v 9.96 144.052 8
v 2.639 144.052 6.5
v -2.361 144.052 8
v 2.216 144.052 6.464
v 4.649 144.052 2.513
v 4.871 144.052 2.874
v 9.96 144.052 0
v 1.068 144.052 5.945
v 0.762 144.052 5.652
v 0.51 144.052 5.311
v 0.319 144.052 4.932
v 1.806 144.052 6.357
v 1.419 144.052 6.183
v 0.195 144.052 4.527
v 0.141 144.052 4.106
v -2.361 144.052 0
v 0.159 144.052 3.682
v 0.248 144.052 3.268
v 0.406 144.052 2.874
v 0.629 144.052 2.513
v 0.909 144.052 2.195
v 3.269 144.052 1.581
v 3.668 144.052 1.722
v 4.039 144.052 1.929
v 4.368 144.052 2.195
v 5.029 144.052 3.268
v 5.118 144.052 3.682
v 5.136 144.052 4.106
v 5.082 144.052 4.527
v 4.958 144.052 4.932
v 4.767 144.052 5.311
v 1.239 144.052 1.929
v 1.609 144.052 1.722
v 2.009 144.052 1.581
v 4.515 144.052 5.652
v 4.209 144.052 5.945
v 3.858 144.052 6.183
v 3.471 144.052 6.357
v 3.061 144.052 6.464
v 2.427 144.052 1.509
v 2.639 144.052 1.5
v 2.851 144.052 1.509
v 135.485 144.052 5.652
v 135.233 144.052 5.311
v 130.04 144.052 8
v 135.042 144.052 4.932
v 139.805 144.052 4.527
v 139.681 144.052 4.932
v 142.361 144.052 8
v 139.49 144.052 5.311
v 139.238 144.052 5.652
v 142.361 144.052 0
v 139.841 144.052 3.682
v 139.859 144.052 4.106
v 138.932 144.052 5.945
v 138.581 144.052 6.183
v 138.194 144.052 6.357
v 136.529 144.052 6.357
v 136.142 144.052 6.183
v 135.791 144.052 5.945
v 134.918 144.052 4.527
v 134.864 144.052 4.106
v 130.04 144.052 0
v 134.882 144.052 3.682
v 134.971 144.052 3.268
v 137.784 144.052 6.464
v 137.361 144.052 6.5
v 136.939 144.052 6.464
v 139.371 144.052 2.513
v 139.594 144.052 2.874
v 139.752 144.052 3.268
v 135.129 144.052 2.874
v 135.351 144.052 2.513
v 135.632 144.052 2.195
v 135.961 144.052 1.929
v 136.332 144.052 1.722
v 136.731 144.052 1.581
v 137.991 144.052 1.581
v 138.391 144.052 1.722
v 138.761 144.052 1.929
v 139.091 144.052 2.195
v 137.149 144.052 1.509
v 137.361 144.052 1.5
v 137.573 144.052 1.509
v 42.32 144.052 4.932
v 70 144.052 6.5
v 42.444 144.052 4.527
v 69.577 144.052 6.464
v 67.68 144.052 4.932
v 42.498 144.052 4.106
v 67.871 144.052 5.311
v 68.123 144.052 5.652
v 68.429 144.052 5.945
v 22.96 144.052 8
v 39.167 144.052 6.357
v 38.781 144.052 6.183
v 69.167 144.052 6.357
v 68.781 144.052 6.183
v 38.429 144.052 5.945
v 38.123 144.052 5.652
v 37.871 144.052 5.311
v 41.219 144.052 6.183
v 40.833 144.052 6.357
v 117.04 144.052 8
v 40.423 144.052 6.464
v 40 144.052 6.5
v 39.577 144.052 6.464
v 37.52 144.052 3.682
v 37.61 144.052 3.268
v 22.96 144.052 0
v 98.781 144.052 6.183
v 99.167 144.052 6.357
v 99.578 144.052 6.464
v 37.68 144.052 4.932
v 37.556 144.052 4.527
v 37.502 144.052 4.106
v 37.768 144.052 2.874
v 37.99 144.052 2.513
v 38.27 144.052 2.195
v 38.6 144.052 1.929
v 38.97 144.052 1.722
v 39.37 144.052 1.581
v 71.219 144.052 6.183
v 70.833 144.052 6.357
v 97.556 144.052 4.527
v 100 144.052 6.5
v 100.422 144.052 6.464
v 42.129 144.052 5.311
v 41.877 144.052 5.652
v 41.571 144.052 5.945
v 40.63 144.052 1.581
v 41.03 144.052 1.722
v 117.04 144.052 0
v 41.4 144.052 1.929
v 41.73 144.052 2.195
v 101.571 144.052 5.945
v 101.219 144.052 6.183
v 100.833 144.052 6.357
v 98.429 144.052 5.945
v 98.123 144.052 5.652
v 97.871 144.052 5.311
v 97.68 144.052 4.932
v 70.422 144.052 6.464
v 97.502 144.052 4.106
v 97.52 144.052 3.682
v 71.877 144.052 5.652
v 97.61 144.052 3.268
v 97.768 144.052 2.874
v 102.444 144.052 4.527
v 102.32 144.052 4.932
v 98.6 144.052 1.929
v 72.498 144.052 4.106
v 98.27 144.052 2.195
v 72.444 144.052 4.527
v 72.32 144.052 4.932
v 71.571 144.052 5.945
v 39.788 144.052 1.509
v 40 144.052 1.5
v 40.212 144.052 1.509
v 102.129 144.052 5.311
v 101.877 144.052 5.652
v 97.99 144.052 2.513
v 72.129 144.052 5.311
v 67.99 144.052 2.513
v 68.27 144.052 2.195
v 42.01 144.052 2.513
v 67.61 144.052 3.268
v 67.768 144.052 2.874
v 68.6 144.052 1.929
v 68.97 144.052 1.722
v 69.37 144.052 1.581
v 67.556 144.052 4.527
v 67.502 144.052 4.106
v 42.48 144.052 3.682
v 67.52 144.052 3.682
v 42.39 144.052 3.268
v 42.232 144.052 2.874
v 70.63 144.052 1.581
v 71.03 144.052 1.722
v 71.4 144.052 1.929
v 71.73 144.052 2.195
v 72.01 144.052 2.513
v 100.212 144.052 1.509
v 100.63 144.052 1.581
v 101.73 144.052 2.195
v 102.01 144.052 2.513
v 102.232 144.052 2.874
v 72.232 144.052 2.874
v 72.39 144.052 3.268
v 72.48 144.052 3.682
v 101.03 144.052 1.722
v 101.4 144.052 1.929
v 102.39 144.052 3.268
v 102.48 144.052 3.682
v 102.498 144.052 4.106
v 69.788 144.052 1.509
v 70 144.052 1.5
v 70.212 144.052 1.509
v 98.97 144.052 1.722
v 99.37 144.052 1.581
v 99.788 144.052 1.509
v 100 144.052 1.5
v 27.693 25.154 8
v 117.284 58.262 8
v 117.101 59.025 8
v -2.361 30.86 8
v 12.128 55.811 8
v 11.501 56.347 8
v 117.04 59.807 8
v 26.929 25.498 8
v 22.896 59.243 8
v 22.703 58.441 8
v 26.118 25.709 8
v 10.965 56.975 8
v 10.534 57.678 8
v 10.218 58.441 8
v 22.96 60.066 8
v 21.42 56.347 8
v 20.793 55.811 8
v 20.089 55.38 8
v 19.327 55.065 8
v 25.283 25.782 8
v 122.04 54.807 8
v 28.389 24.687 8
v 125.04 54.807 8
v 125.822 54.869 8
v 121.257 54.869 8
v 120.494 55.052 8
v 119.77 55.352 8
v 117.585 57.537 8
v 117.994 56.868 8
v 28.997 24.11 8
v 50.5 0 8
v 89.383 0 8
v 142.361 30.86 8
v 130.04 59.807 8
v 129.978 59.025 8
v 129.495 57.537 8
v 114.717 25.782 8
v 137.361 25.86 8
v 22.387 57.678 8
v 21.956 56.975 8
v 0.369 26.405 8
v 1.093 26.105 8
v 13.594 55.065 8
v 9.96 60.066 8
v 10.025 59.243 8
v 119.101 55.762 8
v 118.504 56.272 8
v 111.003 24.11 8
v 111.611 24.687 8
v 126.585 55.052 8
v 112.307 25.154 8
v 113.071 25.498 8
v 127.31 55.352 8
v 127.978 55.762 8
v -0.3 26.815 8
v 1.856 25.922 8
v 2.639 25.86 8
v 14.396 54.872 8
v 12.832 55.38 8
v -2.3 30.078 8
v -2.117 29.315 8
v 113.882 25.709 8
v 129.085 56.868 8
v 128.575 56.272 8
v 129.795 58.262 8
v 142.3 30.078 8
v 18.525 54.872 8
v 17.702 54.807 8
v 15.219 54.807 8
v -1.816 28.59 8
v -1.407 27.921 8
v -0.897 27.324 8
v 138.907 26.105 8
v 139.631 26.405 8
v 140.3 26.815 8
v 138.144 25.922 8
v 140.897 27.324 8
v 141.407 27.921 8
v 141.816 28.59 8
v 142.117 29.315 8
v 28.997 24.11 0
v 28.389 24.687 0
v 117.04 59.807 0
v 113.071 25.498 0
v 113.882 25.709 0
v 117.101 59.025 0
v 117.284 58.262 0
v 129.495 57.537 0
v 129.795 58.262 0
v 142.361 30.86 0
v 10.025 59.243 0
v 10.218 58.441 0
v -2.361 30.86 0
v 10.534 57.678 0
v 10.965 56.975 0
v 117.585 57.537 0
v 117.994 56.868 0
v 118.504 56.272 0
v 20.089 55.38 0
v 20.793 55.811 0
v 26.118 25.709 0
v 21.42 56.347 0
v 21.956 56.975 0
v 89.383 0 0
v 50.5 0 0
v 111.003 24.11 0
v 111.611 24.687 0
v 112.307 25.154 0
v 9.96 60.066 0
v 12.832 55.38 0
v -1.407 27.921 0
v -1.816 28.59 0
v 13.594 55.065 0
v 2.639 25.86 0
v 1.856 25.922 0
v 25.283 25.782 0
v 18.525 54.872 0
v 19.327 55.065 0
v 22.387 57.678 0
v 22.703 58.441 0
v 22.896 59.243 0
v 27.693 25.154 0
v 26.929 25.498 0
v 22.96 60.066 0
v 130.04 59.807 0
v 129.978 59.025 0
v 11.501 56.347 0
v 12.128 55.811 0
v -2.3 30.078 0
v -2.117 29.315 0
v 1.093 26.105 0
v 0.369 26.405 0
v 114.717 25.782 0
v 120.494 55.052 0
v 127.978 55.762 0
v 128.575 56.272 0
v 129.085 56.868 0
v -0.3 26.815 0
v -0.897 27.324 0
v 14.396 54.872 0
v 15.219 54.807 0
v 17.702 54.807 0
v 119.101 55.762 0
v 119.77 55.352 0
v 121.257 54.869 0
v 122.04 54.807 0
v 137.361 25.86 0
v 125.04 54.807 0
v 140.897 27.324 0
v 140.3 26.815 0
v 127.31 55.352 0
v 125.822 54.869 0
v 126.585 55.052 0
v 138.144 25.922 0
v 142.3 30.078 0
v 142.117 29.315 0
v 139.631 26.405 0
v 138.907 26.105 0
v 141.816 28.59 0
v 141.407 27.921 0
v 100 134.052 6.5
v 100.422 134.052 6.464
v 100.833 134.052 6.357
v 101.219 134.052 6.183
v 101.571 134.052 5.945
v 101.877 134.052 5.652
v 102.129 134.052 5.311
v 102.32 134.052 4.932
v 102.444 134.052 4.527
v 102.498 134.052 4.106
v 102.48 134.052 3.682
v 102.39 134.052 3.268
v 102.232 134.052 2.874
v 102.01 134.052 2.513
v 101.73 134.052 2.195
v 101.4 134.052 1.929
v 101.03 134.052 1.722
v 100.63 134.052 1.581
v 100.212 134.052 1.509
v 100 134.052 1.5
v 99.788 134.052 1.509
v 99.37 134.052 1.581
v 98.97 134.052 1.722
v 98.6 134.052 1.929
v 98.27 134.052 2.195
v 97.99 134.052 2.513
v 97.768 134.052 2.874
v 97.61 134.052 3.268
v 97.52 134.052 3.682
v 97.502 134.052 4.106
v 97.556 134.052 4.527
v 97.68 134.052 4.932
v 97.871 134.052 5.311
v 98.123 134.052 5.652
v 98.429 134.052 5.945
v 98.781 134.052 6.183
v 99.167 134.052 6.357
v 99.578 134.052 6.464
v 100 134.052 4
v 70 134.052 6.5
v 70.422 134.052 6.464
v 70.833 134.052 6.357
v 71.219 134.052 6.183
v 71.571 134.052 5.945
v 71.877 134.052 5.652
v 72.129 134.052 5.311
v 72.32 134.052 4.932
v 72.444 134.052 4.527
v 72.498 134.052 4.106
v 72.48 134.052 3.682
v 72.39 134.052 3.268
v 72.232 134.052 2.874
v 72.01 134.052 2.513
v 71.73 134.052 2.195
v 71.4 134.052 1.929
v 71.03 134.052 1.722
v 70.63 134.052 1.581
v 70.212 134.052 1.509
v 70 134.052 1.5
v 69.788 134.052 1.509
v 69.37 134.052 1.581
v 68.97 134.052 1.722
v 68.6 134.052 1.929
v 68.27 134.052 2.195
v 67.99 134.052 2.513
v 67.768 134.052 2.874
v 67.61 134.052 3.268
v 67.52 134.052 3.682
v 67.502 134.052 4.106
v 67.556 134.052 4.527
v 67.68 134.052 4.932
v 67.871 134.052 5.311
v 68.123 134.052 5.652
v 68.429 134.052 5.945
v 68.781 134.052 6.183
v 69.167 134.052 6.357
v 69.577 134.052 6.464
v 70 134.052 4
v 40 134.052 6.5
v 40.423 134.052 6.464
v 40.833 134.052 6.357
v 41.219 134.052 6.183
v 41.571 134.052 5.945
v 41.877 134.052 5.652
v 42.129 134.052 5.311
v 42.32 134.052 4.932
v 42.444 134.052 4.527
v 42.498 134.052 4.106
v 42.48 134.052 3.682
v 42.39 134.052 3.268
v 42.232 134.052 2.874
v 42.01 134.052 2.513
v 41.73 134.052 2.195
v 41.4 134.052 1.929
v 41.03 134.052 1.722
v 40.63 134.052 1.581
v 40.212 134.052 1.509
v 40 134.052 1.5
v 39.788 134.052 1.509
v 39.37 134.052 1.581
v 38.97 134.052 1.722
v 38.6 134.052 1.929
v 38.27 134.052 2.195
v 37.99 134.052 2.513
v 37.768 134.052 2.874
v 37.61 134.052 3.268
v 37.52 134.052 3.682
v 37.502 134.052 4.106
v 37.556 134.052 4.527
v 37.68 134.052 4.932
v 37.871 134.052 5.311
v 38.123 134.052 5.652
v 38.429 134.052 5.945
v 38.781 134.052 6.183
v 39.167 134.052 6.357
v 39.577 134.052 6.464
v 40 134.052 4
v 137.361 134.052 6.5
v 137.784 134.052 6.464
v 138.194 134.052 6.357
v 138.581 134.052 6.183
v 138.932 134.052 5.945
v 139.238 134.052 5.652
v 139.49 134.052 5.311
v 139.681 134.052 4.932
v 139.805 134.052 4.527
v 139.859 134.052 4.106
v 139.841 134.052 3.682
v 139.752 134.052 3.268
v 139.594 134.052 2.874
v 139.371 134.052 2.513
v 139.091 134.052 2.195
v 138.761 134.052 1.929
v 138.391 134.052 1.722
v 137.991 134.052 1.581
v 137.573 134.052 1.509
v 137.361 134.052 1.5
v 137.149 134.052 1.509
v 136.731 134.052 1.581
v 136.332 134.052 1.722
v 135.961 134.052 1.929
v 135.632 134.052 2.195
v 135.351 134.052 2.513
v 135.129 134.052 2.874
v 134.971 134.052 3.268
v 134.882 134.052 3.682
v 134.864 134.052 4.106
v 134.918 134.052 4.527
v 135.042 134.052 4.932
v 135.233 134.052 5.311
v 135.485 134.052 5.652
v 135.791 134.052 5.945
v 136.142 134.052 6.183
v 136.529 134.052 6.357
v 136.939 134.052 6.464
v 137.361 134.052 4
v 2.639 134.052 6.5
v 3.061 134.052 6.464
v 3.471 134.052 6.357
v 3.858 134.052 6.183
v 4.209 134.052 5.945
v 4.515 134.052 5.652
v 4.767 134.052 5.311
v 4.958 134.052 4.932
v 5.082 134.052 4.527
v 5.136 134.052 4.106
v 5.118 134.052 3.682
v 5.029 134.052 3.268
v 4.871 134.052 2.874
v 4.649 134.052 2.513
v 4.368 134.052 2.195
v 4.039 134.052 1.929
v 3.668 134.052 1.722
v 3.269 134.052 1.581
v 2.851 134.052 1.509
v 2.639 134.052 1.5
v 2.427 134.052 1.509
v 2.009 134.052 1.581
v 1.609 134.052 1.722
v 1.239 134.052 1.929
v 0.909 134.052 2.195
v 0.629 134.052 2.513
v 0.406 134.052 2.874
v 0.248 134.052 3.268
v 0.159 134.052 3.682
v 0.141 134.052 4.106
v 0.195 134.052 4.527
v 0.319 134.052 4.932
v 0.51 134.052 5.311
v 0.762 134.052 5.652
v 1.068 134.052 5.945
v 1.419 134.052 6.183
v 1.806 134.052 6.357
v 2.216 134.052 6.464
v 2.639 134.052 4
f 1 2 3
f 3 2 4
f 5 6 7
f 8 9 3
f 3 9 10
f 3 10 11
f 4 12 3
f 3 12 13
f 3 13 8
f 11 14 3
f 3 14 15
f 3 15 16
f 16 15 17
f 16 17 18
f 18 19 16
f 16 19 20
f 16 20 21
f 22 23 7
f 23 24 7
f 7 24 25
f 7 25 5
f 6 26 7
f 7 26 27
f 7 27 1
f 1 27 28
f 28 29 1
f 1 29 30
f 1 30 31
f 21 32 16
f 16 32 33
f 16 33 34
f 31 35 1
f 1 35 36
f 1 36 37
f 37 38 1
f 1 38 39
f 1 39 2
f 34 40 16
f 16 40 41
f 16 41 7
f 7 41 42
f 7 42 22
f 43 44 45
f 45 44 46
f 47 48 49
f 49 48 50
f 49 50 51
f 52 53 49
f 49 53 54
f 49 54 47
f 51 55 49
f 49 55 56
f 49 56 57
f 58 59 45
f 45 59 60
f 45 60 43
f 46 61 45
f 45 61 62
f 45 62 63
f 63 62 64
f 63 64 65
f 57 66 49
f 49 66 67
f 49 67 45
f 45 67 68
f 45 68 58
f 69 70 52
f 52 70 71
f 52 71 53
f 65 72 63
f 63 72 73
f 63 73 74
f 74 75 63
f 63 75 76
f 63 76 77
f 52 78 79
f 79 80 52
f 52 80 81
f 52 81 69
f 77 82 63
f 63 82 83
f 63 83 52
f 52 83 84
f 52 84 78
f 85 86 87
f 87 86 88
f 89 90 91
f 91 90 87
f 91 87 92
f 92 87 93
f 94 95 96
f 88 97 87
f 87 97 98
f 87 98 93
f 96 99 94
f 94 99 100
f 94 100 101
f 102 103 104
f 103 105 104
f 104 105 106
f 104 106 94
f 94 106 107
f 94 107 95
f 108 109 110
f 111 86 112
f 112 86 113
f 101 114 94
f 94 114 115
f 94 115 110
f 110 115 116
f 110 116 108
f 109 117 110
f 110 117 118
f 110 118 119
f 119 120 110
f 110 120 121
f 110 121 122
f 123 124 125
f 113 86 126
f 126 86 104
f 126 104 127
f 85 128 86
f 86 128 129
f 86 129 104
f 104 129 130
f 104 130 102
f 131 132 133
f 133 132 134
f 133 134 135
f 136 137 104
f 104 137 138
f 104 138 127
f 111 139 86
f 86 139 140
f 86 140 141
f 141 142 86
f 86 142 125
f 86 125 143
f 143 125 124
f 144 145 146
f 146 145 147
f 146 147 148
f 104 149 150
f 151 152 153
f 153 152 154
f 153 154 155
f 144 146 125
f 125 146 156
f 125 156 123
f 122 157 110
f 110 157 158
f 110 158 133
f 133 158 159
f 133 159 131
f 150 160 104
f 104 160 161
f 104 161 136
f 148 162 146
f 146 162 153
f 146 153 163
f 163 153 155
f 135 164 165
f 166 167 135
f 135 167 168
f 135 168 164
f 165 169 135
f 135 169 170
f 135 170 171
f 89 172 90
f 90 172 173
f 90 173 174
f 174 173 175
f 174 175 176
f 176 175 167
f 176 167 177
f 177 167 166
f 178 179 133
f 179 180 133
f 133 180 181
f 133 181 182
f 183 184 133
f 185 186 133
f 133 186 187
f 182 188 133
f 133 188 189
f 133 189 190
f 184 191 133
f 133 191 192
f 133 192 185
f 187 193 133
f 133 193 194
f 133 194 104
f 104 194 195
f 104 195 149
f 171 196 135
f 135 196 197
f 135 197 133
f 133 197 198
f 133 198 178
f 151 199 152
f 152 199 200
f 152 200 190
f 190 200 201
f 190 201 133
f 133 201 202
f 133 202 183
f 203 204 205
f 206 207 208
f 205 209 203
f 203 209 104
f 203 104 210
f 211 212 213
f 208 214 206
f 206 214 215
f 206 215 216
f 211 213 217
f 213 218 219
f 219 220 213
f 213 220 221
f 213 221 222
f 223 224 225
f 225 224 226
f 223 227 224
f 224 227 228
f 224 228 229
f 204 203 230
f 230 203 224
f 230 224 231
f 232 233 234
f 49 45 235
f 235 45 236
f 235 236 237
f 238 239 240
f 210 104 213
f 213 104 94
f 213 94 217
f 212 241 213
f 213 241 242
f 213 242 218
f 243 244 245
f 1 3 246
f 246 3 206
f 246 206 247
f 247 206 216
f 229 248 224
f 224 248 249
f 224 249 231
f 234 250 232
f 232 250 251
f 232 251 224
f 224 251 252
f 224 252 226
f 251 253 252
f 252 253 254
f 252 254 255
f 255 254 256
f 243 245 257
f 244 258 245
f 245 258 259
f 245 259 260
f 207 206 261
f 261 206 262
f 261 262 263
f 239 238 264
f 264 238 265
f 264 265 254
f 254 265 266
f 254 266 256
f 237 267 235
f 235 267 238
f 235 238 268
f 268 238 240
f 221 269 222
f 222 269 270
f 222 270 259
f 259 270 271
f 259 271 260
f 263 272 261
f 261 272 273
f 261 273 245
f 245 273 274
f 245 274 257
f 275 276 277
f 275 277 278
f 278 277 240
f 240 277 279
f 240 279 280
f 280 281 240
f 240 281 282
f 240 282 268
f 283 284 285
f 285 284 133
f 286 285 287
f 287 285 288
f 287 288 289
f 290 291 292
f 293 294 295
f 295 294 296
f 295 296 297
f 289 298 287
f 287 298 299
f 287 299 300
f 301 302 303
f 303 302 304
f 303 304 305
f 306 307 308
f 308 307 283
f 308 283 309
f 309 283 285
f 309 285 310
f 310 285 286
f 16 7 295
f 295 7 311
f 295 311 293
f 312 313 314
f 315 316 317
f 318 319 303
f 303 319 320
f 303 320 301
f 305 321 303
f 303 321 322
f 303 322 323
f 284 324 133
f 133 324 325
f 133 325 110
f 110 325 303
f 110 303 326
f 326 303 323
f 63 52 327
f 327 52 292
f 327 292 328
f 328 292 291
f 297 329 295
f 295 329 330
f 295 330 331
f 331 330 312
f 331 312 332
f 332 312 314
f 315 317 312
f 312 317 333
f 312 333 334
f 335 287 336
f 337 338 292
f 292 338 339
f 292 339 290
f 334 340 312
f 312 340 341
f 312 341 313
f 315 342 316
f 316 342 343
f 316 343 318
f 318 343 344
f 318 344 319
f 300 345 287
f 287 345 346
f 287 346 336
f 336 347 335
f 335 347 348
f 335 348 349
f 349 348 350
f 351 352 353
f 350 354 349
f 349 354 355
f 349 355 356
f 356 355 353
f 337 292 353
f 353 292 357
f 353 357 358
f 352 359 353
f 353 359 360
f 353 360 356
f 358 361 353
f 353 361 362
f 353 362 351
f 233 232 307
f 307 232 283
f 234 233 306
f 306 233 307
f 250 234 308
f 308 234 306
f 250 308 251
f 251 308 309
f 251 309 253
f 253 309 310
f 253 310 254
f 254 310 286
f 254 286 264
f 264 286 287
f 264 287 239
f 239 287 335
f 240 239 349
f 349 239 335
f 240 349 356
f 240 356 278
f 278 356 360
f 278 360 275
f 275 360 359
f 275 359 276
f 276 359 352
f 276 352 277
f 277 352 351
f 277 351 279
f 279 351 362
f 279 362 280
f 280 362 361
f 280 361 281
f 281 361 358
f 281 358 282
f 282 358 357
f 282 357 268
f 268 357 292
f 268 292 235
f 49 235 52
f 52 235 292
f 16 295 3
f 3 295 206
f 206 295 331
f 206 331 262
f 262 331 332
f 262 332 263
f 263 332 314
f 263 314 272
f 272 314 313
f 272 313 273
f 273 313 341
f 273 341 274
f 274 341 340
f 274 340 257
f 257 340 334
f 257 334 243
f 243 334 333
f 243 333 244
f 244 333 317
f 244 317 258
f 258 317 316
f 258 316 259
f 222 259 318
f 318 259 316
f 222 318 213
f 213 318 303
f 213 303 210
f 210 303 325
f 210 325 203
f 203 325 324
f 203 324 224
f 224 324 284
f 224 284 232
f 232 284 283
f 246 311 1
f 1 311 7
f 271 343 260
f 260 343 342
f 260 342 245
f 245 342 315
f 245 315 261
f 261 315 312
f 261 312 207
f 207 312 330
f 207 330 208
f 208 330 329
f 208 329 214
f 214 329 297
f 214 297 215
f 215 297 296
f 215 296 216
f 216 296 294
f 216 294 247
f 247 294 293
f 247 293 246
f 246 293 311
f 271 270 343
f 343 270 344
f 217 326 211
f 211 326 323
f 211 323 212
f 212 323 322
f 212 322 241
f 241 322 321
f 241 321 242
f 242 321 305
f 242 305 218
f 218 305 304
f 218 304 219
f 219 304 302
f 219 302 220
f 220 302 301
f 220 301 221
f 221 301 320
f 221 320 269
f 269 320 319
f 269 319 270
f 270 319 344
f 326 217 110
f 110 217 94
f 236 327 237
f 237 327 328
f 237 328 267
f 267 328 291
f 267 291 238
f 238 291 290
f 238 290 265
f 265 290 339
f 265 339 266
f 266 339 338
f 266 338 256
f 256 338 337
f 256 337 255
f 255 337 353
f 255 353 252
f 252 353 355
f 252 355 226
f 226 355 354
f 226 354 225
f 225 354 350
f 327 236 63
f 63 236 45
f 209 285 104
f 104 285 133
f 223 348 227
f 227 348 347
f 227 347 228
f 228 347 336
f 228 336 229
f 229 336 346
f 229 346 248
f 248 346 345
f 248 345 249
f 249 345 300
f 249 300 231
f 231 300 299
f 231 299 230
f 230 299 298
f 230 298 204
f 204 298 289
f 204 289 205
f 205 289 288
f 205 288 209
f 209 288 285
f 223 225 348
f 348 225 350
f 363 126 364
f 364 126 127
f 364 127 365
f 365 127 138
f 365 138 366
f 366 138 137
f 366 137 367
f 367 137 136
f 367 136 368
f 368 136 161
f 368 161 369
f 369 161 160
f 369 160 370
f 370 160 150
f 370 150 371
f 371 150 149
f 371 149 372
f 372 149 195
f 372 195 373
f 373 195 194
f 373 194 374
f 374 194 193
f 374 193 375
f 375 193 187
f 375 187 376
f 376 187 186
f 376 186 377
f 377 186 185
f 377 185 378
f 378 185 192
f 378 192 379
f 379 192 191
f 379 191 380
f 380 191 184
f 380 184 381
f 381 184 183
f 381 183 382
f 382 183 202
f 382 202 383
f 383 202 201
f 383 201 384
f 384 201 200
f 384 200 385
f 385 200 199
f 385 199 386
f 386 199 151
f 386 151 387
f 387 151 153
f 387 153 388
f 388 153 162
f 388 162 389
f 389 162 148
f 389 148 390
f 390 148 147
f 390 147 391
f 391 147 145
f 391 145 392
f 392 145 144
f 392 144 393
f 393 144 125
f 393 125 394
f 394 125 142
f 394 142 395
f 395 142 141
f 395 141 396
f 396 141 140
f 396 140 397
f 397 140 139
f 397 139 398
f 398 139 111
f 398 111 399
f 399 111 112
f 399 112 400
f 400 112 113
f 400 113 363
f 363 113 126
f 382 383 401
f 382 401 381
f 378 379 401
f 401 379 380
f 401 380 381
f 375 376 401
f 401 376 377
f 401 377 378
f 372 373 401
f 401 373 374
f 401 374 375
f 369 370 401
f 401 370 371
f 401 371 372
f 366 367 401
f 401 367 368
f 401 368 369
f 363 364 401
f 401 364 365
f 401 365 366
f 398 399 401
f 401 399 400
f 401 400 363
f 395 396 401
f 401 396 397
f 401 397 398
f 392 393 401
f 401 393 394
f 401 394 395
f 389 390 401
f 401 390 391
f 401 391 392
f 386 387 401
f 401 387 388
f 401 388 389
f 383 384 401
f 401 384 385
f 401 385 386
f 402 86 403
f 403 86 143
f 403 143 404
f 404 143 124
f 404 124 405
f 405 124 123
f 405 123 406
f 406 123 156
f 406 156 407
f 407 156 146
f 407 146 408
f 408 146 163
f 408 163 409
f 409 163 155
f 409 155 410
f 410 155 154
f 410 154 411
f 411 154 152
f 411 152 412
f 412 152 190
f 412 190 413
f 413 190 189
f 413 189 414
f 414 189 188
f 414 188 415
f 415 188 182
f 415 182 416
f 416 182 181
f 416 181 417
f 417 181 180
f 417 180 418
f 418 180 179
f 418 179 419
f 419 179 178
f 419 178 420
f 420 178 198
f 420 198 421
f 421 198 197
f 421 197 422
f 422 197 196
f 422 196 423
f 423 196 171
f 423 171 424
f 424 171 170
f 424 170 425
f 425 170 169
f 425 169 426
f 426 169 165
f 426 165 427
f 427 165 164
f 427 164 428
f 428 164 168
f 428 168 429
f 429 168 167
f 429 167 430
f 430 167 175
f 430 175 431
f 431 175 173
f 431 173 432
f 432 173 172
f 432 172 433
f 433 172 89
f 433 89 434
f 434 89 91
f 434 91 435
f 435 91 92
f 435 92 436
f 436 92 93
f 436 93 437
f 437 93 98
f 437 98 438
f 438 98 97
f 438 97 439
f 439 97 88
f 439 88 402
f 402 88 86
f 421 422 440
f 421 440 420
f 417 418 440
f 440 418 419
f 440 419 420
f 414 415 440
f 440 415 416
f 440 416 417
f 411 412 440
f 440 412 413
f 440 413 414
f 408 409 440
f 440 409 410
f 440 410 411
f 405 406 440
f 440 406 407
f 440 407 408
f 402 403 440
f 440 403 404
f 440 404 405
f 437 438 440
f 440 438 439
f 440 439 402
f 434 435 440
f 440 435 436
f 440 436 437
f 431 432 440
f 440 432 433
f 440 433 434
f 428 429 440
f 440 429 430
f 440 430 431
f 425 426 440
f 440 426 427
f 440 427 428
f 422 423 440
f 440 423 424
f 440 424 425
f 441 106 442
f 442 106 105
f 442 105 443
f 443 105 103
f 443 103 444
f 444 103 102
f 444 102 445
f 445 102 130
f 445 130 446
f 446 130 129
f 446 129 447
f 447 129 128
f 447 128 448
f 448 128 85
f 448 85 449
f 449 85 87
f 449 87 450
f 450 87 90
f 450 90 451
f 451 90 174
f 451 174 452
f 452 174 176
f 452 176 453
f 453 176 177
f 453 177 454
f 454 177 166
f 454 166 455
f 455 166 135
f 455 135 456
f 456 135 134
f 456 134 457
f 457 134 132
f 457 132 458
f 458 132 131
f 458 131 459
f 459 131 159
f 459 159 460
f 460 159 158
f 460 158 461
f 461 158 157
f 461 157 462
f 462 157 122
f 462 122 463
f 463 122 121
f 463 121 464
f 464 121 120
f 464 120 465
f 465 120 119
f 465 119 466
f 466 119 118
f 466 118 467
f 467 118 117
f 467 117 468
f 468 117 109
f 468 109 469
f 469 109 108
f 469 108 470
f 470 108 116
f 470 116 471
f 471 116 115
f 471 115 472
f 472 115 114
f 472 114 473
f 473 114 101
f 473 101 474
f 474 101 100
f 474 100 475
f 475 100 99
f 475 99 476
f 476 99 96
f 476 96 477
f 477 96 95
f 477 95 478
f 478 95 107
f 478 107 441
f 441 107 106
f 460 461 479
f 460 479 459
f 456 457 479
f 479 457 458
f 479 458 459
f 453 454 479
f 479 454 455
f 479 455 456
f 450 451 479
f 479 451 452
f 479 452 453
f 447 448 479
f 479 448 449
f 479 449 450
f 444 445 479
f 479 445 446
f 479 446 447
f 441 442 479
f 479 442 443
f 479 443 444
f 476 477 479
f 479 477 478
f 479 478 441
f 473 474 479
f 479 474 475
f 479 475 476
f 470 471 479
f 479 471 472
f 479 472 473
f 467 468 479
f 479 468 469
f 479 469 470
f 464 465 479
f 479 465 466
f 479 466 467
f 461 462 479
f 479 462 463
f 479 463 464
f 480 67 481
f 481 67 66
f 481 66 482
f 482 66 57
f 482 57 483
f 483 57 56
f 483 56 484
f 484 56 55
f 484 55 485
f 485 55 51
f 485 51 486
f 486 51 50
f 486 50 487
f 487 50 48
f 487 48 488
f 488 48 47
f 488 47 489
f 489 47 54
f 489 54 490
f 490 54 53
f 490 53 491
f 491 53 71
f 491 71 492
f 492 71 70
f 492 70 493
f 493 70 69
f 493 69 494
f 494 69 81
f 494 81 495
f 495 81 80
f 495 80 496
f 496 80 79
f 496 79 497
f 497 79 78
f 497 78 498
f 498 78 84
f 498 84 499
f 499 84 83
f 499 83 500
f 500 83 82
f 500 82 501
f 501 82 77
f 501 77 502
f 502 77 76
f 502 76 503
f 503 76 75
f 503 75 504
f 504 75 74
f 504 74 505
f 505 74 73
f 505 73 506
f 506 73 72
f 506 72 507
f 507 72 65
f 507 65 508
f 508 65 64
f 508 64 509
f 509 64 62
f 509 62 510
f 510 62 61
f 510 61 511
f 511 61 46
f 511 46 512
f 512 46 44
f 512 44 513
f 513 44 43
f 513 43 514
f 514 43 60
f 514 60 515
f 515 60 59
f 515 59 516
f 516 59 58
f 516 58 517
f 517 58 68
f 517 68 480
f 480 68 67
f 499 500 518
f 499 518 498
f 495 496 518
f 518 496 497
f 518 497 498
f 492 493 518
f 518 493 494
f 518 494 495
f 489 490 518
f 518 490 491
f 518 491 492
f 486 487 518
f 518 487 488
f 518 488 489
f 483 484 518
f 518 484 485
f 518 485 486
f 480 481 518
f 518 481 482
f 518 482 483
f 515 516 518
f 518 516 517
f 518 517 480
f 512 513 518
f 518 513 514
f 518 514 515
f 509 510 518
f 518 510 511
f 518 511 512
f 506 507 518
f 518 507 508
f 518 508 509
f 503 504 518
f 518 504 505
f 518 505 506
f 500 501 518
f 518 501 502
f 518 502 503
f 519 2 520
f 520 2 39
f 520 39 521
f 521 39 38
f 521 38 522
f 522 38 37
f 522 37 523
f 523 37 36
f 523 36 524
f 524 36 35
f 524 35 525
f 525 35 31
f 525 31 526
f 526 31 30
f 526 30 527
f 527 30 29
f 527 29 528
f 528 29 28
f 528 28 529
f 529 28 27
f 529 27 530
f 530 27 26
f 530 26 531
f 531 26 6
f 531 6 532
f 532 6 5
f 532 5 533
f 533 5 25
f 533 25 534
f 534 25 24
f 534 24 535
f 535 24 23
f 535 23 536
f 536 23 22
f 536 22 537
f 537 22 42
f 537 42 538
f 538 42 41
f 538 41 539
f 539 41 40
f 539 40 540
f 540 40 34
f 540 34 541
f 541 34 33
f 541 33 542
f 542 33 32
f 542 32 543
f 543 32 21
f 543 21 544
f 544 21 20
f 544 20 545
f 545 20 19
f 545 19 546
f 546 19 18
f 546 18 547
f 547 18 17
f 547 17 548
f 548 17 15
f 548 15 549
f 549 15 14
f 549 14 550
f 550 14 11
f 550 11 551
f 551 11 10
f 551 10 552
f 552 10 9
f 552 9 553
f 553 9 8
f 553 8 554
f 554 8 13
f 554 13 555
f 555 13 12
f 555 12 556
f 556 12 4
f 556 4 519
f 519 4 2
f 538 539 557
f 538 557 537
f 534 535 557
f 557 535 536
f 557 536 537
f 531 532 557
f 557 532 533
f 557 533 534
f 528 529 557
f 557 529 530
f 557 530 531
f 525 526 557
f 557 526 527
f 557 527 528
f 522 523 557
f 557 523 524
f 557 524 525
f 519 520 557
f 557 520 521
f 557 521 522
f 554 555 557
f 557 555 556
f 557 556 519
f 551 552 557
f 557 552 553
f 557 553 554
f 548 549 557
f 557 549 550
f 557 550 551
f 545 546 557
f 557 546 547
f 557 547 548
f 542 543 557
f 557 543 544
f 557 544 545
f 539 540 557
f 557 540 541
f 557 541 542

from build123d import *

# Parameters (mm, degrees)
BOSS_EXTRUDE1_DEPTH    = 8
SPLIT1_SURFACE_1_BACK  = 343.199
SPLIT1_SURFACE_1_DEPTH = 686.398
SPLIT1_SURFACE_2_BACK  = 343.199
SPLIT1_SURFACE_2_DEPTH = 686.398
SKETCH5_R              = 2.5
CUT_EXTRUDE6_DEPTH     = 10
SKETCH4_R              = 2.5
CUT_EXTRUDE7_DEPTH     = 10
SKETCH6_R              = 1.5
CUT_EXTRUDE8_DEPTH     = 342.206659287
SKETCH7_W              = 49
SKETCH7_H              = 49
SKETCH7_W_2            = 18
SKETCH7_H_2            = 18
BOSS_EXTRUDE2_DEPTH    = 15
SKETCH8_W              = 49
SKETCH8_H              = 49
SKETCH8_R              = 1.5
BOSS_EXTRUDE3_DEPTH    = 10
SKETCH9_W              = 49
SKETCH9_H              = 49
CUT_EXTRUDE9_DEPTH     = 8
SKETCH10_W             = 49
SKETCH10_H             = 49
SKETCH10_W_2           = 18
SKETCH10_H_2           = 18
BOSS_EXTRUDE4_DEPTH    = 8
SKETCH12_R             = 2.5
CUT_EXTRUDE10_DEPTH    = 343.027753759


with BuildPart() as part:
    # Sketch1 → Boss-Extrude1 (new body)
    with BuildSketch(Plane.XY):
        with BuildLine():
            Line((70, 309.985818768), (85.299227191, 309.985818768))
            ThreePointArc((85.299227191, 309.985818768), (88.489017574, 308.836174247), (90.211957942, 305.915913694))
            Line((90.211957942, 305.915913694), (96.672728921, 271.790334282))
            ThreePointArc((96.672728921, 271.790334282), (97.06575438, 270.906904614), (97.621470019, 270.115641625))
            Line((97.621470019, 270.115641625), (139.950460317, 220.786053348))
            ThreePointArc((139.950460317, 220.786053348), (141.739336996, 217.746026552), (142.361429131, 214.274017901))
            Line((142.361429131, 214.274017901), (142.361429131, 30.859943174))
            ThreePointArc((142.361429131, 30.859943174), (140.896963037, 27.324409268), (137.361429131, 25.859943174))
            Line((137.361429131, 25.859943174), (114.717190871, 25.782318449))
            ThreePointArc((114.717190871, 25.782318449), (112.681998989, 25.341726514), (111.002773989, 24.110332733))
            Line((111.002773989, 24.110332733), (89.38285929, 0))
            Line((89.38285929, 0), (50.5, 0))
            Line((50.5, 0), (28.997226011, 24.110332733))
            ThreePointArc((28.997226011, 24.110332733), (27.318001011, 25.341726514), (25.282809129, 25.782318449))
            Line((25.282809129, 25.782318449), (2.638570869, 25.859943174))
            ThreePointArc((2.638570869, 25.859943174), (-0.896963037, 27.324409268), (-2.361429131, 30.859943174))
            Line((-2.361429131, 30.859943174), (-2.361429131, 214.274017901))
            ThreePointArc((-2.361429131, 214.274017901), (-1.739336996, 217.746026552), (0.049539683, 220.786053348))
            Line((0.049539683, 220.786053348), (42.261389271, 270.115641625))
            ThreePointArc((42.261389271, 270.115641625), (42.81710491, 270.906904614), (43.210130369, 271.790334282))
            Line((43.210130369, 271.790334282), (49.724618218, 305.923183314))
            ThreePointArc((49.724618218, 305.923183314), (51.449026762, 308.838533573), (54.635967087, 309.985818768))
            Line((54.635967087, 309.985818768), (70, 309.985818768))
        make_face()
        with BuildLine():
            Line((15.218798766, 54.807228462), (17.702103505, 54.807228462))
            ThreePointArc((17.702103505, 54.807228462), (21.420312934, 56.347361236), (22.960445707, 60.065570665))
            Line((22.960445707, 60.065570665), (22.960445707, 189.807228462))
            ThreePointArc((22.960445707, 189.807228462), (21.495979613, 193.342762368), (17.960445707, 194.807228462))
            Line((17.960445707, 194.807228462), (14.960456564, 194.807228462))
            ThreePointArc((14.960456564, 194.807228462), (11.424922658, 193.342762368), (9.960456564, 189.807228462))
            Line((9.960456564, 189.807228462), (9.960456564, 60.065570665))
            ThreePointArc((9.960456564, 60.065570665), (11.500589337, 56.347361236), (15.218798766, 54.807228462))
        make_face(mode=Mode.SUBTRACT)
        with BuildLine():
            Line((125.039543436, 54.807228462), (122.039554293, 54.807228462))
            ThreePointArc((122.039554293, 54.807228462), (118.504020387, 56.271694556), (117.039554293, 59.807228462))
            Line((117.039554293, 59.807228462), (117.039554293, 189.807228462))
            ThreePointArc((117.039554293, 189.807228462), (118.504020387, 193.342762368), (122.039554293, 194.807228462))
            Line((122.039554293, 194.807228462), (125.039543436, 194.807228462))
            ThreePointArc((125.039543436, 194.807228462), (128.575077342, 193.342762368), (130.039543436, 189.807228462))
            Line((130.039543436, 189.807228462), (130.039543436, 59.807228462))
            ThreePointArc((130.039543436, 59.807228462), (128.575077342, 56.271694556), (125.039543436, 54.807228462))
        make_face(mode=Mode.SUBTRACT)
    extrude(amount=BOSS_EXTRUDE1_DEPTH)


with BuildPart() as body_2:
    # Split1: the piece behind the surface
    add(part.part)
    # Split1 surface: a surface, the sketch's curves swept straight by 686.398 mm
    with BuildLine(Plane(origin=(0, 0, 0), x_dir=(-1, 0, 0), z_dir=(0, 0, -1)).offset(-SPLIT1_SURFACE_1_BACK), mode=Mode.PRIVATE) as split1_surface_1_path:
        Line((-142.361429131, 144.05225917), (2.361429131, 144.05225917))
    split1_surface_1 = Shell.extrude(split1_surface_1_path.wire(), (0 * SPLIT1_SURFACE_1_DEPTH, 0 * SPLIT1_SURFACE_1_DEPTH, -1 * SPLIT1_SURFACE_1_DEPTH))
    split(bisect_by=split1_surface_1, keep=Keep.BOTTOM)

    # Sketch5 → Cut-Extrude6 (cut)
    with BuildSketch(Plane(origin=(0, 144.05225917, -115.359943174), x_dir=(1, 0, 0), z_dir=(0, -1, 0))):
        with Locations(Location((70, 119.359943174, 0), (0, 0, 270))):
            Circle(SKETCH5_R)
        with Locations(Location((100, 119.359943174, 0), (0, 0, 270))):
            Circle(SKETCH5_R)
        with Locations(Location((40, 119.359943174, 0), (0, 0, 270))):
            Circle(SKETCH5_R)
        with Locations(Location((2.638570869, 119.359943174, 0), (0, 0, 270))):
            Circle(SKETCH5_R)
        with Locations(Location((137.361429131, 119.359943174, 0), (0, 0, 270))):
            Circle(SKETCH5_R)
    extrude(amount=CUT_EXTRUDE6_DEPTH, mode=Mode.SUBTRACT)


with BuildPart() as part_1:
    add(part.part)

    # Split1: split by a surface, the side it looks to stays
    # Split1 surface: a surface, the sketch's curves swept straight by 686.398 mm
    with BuildLine(Plane(origin=(0, 0, 0), x_dir=(-1, 0, 0), z_dir=(0, 0, -1)).offset(-SPLIT1_SURFACE_2_BACK), mode=Mode.PRIVATE) as split1_surface_2_path:
        Line((-142.361429131, 144.05225917), (2.361429131, 144.05225917))
    split1_surface_2 = Shell.extrude(split1_surface_2_path.wire(), (0 * SPLIT1_SURFACE_2_DEPTH, 0 * SPLIT1_SURFACE_2_DEPTH, -1 * SPLIT1_SURFACE_2_DEPTH))
    split(bisect_by=split1_surface_2, keep=Keep.TOP)

    # Sketch4 → Cut-Extrude7 (cut)
    with BuildSketch(Plane(origin=(0, 144.05225917, 0), x_dir=(-1, 0, 0), z_dir=(0, -1, 0))):
        with Locations(Location((-70, -4, 0), (0, 0, 90))):
            Circle(SKETCH4_R)
        with Locations(Location((-40, -4, 0), (0, 0, 90))):
            Circle(SKETCH4_R)
        with Locations(Location((-100, -4, 0), (0, 0, 90))):
            Circle(SKETCH4_R)
        with Locations(Location((-137.361429131, -4, 0), (0, 0, 90))):
            Circle(SKETCH4_R)
        with Locations(Location((-3.799513716, -4, 0), (0, 0, 270))):
            Circle(SKETCH4_R)
    extrude(amount=-CUT_EXTRUDE7_DEPTH, mode=Mode.SUBTRACT)

    # Sketch6 → Cut-Extrude8 (cut, through all)
    with BuildSketch(Plane.XY.offset(8)):
        with Locations((50.000130369, 267.980334282)):
            Circle(SKETCH6_R)
        with Locations((90.000130369, 267.980334282)):
            Circle(SKETCH6_R)
        with Locations((90.000130369, 227.980334282)):
            Circle(SKETCH6_R)
        with Locations((50.000130369, 227.980334282)):
            Circle(SKETCH6_R)
    extrude(amount=-CUT_EXTRUDE8_DEPTH, mode=Mode.SUBTRACT)

    # Sketch7 → Boss-Extrude2 (add)
    with BuildSketch(Plane(origin=(0, 0, 0), x_dir=(-1, 0, 0), z_dir=(0, 0, -1))):
        with Locations((-70.000130369, 247.980334282)):
            Rectangle(SKETCH7_W, SKETCH7_H)
        with Locations((-56.000130369, 261.980334282)):
            Rectangle(SKETCH7_W_2, SKETCH7_H_2, mode=Mode.SUBTRACT)
        with Locations((-84.000130369, 261.980334282)):
            Rectangle(SKETCH7_W_2, SKETCH7_H_2, mode=Mode.SUBTRACT)
        with Locations((-84.000130369, 233.980334282)):
            Rectangle(SKETCH7_W_2, SKETCH7_H_2, mode=Mode.SUBTRACT)
        with Locations((-56.000130369, 233.980334282)):
            Rectangle(SKETCH7_W_2, SKETCH7_H_2, mode=Mode.SUBTRACT)
    extrude(amount=BOSS_EXTRUDE2_DEPTH)

    # Sketch8 → Boss-Extrude3 (add)
    with BuildSketch(Plane(origin=(0, 0, -15), x_dir=(-1, 0, 0), z_dir=(0, 0, -1))):
        with Locations((-70.000130369, 247.980334282)):
            Rectangle(SKETCH8_W, SKETCH8_H)
        with Locations(Location((-50.000130369, 267.980334282, 0), (0, 0, 180))):
            Circle(SKETCH8_R, mode=Mode.SUBTRACT)
        with Locations(Location((-90.000130369, 267.980334282, 0), (0, 0, 180))):
            Circle(SKETCH8_R, mode=Mode.SUBTRACT)
        with Locations(Location((-50.000130369, 227.980334282, 0), (0, 0, 180))):
            Circle(SKETCH8_R, mode=Mode.SUBTRACT)
        with Locations(Location((-90.000130369, 227.980334282, 0), (0, 0, 180))):
            Circle(SKETCH8_R, mode=Mode.SUBTRACT)
    extrude(amount=BOSS_EXTRUDE3_DEPTH)

    # Sketch9 → Cut-Extrude9 (cut)
    with BuildSketch(Plane.XY.offset(8)):
        with Locations((70.000130369, 247.980334282)):
            Rectangle(SKETCH9_W, SKETCH9_H)
    extrude(amount=-CUT_EXTRUDE9_DEPTH, mode=Mode.SUBTRACT)


with BuildPart() as cut_extrude9_piece_1:
    # of the separate pieces the step leaves, piece 1, a body of its own (cut_extrude9_pieces)
    add(part_1.part.solids().sort_by_distance((49.724618218, 305.923183314, 0))[0])



with BuildPart() as cut_extrude9_piece_2:
    # of the separate pieces the step leaves, piece 2, a body of its own (cut_extrude9_pieces)
    add(part_1.part.solids().sort_by_distance((45.500130369, 223.480334282, -25))[0])


with BuildPart() as cut_extrude9_piece_1_1:
    add(cut_extrude9_piece_1.part)

    add(cut_extrude9_piece_2.part)  # Boss-Extrude4 merges Cut-Extrude9 piece 2
    # Sketch10 → Boss-Extrude4 (add)
    with BuildSketch(Plane.XY):
        with Locations((70.000130369, 247.980334282)):
            Rectangle(SKETCH10_W, SKETCH10_H)
        with Locations((84.000130369, 261.980334282)):
            Rectangle(SKETCH10_W_2, SKETCH10_H_2, mode=Mode.SUBTRACT)
        with Locations((56.000130369, 261.980334282)):
            Rectangle(SKETCH10_W_2, SKETCH10_H_2, mode=Mode.SUBTRACT)
        with Locations((56.000130369, 233.980334282)):
            Rectangle(SKETCH10_W_2, SKETCH10_H_2, mode=Mode.SUBTRACT)
        with Locations((84.000130369, 233.980334282)):
            Rectangle(SKETCH10_W_2, SKETCH10_H_2, mode=Mode.SUBTRACT)
    extrude(amount=BOSS_EXTRUDE4_DEPTH)

    # Sketch12 → Cut-Extrude10 (cut, through all)
    with BuildSketch(Plane(origin=(0, 0, 0), x_dir=(-1, 0, 0), z_dir=(0, 0, -1))):
        with Locations((-102.960445707, 197.503395095)):
            Circle(SKETCH12_R)
        with Locations((-35.960445707, 197.503395095)):
            Circle(SKETCH12_R)
        with Locations((-35.960445707, 157.503395095)):
            Circle(SKETCH12_R)
        with Locations((-102.960445707, 157.503395095)):
            Circle(SKETCH12_R)
    extrude(amount=-CUT_EXTRUDE10_DEPTH, mode=Mode.SUBTRACT)


solid = body_2.part
